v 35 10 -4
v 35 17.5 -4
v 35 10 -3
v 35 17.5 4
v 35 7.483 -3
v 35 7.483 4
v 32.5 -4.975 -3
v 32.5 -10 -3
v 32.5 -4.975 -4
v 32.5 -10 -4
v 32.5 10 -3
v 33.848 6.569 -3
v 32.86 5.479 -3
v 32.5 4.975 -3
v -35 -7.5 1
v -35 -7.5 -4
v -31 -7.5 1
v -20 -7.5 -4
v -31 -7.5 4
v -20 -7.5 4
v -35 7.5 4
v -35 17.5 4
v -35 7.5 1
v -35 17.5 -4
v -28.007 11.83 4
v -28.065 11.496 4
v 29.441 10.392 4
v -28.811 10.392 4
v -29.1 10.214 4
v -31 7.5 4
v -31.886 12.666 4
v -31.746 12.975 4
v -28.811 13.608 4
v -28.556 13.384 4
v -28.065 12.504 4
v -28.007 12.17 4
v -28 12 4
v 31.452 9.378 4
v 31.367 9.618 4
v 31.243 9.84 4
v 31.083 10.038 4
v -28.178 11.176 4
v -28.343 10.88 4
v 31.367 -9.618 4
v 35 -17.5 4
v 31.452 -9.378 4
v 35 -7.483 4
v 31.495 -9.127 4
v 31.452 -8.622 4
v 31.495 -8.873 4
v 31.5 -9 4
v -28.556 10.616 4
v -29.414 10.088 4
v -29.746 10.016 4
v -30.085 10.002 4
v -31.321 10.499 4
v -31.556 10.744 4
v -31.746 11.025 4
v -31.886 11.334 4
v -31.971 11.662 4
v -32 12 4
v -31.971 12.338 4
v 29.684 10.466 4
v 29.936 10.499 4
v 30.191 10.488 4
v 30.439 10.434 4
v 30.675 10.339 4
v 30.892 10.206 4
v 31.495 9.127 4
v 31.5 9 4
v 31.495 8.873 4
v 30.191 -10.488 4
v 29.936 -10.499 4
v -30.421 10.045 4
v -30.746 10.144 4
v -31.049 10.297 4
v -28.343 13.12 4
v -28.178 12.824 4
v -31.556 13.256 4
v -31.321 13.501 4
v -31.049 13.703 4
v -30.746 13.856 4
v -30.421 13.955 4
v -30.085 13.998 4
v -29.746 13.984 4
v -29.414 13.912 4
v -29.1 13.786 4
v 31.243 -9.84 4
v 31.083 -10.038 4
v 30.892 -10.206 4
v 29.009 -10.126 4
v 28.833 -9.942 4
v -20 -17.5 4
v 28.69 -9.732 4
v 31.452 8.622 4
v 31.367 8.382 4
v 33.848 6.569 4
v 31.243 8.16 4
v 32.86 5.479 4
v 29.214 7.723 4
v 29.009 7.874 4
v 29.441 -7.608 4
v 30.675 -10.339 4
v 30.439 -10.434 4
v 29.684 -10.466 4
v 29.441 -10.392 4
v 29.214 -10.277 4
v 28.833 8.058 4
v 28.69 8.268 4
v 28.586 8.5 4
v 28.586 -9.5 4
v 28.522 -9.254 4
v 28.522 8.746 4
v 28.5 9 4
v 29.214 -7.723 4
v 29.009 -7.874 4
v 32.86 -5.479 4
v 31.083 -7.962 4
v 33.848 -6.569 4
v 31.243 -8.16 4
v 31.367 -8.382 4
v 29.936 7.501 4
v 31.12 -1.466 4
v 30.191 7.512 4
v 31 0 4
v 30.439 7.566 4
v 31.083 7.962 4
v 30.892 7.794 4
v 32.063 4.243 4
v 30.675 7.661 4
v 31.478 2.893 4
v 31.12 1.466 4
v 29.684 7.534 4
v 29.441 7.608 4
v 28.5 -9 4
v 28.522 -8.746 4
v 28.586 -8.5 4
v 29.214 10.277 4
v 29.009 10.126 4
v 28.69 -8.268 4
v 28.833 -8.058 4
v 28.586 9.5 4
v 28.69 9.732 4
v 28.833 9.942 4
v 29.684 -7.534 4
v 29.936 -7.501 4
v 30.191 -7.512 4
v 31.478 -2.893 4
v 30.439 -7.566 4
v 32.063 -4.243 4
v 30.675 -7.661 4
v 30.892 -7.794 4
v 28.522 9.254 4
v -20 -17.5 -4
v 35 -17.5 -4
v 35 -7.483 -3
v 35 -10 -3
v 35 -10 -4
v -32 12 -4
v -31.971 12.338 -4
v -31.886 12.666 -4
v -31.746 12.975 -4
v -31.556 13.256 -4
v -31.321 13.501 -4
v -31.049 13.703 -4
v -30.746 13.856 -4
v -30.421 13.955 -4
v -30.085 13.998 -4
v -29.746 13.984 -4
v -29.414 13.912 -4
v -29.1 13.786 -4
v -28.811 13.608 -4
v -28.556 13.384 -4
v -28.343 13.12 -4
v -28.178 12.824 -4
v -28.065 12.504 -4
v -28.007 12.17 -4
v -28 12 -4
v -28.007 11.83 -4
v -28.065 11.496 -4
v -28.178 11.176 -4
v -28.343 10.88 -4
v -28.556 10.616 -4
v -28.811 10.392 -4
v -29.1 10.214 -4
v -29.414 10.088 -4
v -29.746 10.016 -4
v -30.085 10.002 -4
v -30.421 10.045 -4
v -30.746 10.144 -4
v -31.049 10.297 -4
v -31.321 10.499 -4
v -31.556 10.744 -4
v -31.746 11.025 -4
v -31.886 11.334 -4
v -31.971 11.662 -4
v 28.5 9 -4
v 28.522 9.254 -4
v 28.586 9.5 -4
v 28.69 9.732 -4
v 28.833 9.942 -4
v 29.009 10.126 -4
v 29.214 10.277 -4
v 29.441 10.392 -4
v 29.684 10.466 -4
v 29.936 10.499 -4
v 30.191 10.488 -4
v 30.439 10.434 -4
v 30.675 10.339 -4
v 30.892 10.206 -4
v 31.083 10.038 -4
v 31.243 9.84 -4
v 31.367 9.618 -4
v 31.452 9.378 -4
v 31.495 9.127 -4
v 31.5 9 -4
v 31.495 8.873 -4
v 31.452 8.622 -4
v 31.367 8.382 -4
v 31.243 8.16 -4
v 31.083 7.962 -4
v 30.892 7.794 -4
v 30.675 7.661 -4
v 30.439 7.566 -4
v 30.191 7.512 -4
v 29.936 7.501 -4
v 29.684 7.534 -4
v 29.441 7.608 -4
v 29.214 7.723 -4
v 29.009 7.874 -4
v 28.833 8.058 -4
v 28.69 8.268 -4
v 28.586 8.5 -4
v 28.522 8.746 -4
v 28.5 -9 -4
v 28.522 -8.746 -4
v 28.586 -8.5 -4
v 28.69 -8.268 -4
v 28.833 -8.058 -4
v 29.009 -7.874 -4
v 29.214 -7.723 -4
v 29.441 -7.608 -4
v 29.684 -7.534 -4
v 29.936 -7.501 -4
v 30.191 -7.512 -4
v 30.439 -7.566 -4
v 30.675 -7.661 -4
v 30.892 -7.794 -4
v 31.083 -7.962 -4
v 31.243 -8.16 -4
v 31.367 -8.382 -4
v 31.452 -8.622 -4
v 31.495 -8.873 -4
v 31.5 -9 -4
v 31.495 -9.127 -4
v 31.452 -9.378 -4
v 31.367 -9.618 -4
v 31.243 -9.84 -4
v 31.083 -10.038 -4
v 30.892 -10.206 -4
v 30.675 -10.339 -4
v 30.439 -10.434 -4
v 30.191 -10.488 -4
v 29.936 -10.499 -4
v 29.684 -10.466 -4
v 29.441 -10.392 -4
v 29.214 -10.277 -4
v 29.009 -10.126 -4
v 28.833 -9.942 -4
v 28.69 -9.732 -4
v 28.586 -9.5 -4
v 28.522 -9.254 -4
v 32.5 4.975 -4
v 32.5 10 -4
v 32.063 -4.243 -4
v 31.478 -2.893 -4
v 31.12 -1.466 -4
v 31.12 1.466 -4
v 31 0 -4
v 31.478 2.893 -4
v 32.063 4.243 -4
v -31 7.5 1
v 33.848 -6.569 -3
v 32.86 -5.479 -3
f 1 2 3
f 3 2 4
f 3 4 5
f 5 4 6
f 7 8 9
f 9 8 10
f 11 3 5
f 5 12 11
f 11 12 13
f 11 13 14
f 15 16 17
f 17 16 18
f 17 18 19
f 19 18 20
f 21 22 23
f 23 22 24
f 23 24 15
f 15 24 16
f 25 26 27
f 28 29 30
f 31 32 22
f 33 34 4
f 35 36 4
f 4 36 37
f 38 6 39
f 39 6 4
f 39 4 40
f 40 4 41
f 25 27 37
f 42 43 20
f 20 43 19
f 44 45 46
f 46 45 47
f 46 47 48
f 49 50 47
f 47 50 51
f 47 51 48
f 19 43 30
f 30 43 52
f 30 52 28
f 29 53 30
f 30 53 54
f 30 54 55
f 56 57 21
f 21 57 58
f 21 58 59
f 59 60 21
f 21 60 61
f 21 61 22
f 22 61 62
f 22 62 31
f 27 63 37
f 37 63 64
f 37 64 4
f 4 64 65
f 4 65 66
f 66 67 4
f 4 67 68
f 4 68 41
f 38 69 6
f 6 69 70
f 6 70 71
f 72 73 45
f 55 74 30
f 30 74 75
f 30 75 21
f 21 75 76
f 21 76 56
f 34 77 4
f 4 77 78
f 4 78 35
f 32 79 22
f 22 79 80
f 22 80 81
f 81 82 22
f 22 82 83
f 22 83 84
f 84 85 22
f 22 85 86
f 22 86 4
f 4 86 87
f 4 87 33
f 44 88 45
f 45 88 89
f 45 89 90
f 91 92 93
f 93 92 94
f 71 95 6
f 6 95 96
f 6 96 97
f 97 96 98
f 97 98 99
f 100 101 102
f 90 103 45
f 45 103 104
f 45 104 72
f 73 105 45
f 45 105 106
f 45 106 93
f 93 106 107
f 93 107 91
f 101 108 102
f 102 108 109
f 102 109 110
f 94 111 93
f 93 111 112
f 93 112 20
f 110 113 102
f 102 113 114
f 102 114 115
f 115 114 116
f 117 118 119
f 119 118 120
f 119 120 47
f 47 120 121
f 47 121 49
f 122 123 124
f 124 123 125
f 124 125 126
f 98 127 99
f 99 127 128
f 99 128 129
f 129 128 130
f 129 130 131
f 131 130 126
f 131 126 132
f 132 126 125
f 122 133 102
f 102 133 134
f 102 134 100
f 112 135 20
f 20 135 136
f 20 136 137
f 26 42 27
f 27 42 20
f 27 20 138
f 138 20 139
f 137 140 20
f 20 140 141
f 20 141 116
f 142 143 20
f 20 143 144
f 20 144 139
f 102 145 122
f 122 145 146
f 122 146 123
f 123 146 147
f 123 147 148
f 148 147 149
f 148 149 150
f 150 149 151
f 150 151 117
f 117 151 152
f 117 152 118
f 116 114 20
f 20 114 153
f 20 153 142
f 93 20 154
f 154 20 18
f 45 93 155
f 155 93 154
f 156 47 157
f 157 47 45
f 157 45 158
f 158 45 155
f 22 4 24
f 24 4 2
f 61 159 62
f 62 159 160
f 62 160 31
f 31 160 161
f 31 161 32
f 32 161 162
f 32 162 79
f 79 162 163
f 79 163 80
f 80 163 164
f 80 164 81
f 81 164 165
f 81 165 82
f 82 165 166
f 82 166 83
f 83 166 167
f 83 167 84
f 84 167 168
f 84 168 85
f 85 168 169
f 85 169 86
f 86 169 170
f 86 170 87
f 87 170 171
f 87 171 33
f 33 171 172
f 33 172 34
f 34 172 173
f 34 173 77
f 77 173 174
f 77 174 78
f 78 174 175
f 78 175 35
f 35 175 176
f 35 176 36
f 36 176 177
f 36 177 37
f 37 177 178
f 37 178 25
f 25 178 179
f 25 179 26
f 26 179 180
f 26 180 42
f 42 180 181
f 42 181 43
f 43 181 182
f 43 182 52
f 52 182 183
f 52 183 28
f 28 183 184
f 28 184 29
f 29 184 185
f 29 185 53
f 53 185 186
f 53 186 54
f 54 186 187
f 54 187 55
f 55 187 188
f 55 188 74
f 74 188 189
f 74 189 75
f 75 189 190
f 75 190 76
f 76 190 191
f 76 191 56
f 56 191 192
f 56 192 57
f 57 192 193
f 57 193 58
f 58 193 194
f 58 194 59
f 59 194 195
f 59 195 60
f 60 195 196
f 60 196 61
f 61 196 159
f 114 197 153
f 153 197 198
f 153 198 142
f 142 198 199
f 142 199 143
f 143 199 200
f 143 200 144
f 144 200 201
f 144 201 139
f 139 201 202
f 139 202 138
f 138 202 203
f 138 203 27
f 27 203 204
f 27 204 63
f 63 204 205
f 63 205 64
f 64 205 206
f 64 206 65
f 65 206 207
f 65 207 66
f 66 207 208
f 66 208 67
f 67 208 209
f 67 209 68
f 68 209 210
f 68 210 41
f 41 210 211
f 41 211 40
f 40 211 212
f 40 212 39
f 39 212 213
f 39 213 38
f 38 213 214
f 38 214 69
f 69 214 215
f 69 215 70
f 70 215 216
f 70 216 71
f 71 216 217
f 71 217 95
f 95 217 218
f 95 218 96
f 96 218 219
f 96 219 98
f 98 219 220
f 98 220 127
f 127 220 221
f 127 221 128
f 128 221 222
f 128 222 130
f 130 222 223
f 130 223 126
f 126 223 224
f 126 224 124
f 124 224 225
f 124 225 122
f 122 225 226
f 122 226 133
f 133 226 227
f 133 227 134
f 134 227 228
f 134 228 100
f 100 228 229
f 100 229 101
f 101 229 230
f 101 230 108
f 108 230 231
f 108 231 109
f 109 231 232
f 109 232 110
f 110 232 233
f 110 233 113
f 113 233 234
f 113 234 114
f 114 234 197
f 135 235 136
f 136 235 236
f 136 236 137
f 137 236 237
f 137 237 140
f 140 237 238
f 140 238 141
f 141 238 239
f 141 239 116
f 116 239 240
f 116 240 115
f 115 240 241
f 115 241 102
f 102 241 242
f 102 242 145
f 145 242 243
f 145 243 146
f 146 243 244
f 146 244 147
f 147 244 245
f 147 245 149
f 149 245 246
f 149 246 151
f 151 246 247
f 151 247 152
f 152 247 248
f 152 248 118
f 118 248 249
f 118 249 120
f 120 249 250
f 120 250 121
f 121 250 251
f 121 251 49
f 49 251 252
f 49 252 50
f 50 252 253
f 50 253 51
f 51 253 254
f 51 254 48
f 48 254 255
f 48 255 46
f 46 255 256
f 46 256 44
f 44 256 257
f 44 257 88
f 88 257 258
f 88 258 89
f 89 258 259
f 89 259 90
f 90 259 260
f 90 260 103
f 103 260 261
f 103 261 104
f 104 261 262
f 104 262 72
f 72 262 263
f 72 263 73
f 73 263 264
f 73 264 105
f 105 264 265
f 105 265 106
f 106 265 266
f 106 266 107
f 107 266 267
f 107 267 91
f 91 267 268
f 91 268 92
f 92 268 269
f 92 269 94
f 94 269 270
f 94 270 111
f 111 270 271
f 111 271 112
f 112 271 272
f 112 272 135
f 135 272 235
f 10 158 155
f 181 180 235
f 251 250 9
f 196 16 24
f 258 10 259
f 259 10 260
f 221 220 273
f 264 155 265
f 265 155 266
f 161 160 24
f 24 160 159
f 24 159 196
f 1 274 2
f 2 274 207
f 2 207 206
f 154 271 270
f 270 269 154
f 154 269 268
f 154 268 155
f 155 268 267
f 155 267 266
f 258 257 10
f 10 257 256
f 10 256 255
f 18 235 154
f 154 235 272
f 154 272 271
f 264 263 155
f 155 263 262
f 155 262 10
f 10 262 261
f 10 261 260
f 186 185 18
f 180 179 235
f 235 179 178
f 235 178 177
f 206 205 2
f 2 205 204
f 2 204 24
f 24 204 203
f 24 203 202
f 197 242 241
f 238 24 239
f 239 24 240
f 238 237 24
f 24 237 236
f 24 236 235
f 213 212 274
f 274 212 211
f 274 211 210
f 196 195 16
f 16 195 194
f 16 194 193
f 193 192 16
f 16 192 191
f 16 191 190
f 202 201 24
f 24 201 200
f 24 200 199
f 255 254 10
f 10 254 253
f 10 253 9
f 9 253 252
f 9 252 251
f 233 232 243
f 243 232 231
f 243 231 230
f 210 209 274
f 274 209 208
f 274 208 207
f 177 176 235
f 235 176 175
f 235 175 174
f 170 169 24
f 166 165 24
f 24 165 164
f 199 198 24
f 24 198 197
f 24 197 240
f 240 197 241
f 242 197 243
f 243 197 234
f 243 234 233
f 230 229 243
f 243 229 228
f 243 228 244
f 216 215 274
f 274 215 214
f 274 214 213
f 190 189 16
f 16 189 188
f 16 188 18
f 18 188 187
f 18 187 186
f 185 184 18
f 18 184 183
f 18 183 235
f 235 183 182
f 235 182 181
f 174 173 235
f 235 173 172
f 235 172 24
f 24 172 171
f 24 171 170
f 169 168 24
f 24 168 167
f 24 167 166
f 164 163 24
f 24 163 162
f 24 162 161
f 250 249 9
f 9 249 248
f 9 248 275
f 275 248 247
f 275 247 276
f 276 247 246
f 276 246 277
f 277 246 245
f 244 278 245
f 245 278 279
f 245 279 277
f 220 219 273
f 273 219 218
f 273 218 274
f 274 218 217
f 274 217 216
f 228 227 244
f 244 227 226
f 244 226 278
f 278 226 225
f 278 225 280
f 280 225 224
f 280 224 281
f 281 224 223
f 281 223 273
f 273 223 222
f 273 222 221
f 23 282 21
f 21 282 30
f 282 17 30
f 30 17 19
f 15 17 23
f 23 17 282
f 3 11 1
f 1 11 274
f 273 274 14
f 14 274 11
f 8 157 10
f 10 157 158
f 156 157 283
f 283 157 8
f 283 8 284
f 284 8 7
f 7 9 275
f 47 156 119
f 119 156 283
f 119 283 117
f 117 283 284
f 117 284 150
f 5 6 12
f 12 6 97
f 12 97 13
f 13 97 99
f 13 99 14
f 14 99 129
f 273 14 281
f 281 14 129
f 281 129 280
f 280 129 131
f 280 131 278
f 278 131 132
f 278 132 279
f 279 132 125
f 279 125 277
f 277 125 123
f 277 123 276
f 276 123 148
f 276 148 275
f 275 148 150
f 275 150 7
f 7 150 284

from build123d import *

# Parameters (mm, degrees)
SKETCH1_R           = 2
BOSS_EXTRUDE1_DEPTH = 4
SKETCH2_W           = 4
SKETCH2_H           = 15
CUT_EXTRUDE1_DEPTH  = 3
SKETCH3_W           = 2.5
SKETCH3_H           = 20
CUT_EXTRUDE2_DEPTH  = 1
CUT_EXTRUDE3_REACH  = 10
SKETCH5_R           = 9


with BuildPart() as part:
    # Sketch1 → Boss-Extrude1 (new body, symmetric)
    with BuildSketch(Plane.XY):
        Polygon((-20, -17.5), (35, -17.5), (35, 17.5), (-35, 17.5), (-35, -7.5), (-20, -7.5), align=None)
        with BuildLine():
            ThreePointArc((31.5, -9), (28.939339828, -10.060660172), (30, -7.5))
            ThreePointArc((30, -7.5), (31.060660172, -7.939339828), (31.5, -9))
        make_face(mode=Mode.SUBTRACT)
        with Locations((-30, 12)):
            Circle(SKETCH1_R, mode=Mode.SUBTRACT)
        with BuildLine():
            ThreePointArc((31.5, 9), (31.060660172, 7.939339828), (30, 7.5))
            ThreePointArc((30, 7.5), (28.939339828, 10.060660172), (31.5, 9))
        make_face(mode=Mode.SUBTRACT)
    extrude(amount=BOSS_EXTRUDE1_DEPTH, both=True)

    # Sketch2 → Cut-Extrude1 (cut)
    with BuildSketch(Plane.XY.offset(4)):
        with Locations((-33, 0)):
            Rectangle(SKETCH2_W, SKETCH2_H)
    extrude(amount=-CUT_EXTRUDE1_DEPTH, mode=Mode.SUBTRACT)

    # Sketch3 → Cut-Extrude2 (cut)
    with BuildSketch(Plane(origin=(0, 0, -4), x_dir=(-1, 0, 0), z_dir=(0, 0, -1))):
        with Locations((-33.75, 0)):
            Rectangle(SKETCH3_W, SKETCH3_H)
    extrude(amount=-CUT_EXTRUDE2_DEPTH, mode=Mode.SUBTRACT)

    # Sketch5 → Cut-Extrude3 (cut, up to next)
    with BuildSketch(Plane.XY.offset(4), mode=Mode.PRIVATE) as cut_extrude3_sk1:
        with Locations((40, 0)):
            Circle(SKETCH5_R)
    cut_extrude3_tool1 = extrude(cut_extrude3_sk1.sketch, amount=-CUT_EXTRUDE3_REACH, mode=Mode.PRIVATE) & part.part
    add(cut_extrude3_tool1.solids().sort_by_distance((40, 0, 4))[0], mode=Mode.SUBTRACT)


solid = part.part
